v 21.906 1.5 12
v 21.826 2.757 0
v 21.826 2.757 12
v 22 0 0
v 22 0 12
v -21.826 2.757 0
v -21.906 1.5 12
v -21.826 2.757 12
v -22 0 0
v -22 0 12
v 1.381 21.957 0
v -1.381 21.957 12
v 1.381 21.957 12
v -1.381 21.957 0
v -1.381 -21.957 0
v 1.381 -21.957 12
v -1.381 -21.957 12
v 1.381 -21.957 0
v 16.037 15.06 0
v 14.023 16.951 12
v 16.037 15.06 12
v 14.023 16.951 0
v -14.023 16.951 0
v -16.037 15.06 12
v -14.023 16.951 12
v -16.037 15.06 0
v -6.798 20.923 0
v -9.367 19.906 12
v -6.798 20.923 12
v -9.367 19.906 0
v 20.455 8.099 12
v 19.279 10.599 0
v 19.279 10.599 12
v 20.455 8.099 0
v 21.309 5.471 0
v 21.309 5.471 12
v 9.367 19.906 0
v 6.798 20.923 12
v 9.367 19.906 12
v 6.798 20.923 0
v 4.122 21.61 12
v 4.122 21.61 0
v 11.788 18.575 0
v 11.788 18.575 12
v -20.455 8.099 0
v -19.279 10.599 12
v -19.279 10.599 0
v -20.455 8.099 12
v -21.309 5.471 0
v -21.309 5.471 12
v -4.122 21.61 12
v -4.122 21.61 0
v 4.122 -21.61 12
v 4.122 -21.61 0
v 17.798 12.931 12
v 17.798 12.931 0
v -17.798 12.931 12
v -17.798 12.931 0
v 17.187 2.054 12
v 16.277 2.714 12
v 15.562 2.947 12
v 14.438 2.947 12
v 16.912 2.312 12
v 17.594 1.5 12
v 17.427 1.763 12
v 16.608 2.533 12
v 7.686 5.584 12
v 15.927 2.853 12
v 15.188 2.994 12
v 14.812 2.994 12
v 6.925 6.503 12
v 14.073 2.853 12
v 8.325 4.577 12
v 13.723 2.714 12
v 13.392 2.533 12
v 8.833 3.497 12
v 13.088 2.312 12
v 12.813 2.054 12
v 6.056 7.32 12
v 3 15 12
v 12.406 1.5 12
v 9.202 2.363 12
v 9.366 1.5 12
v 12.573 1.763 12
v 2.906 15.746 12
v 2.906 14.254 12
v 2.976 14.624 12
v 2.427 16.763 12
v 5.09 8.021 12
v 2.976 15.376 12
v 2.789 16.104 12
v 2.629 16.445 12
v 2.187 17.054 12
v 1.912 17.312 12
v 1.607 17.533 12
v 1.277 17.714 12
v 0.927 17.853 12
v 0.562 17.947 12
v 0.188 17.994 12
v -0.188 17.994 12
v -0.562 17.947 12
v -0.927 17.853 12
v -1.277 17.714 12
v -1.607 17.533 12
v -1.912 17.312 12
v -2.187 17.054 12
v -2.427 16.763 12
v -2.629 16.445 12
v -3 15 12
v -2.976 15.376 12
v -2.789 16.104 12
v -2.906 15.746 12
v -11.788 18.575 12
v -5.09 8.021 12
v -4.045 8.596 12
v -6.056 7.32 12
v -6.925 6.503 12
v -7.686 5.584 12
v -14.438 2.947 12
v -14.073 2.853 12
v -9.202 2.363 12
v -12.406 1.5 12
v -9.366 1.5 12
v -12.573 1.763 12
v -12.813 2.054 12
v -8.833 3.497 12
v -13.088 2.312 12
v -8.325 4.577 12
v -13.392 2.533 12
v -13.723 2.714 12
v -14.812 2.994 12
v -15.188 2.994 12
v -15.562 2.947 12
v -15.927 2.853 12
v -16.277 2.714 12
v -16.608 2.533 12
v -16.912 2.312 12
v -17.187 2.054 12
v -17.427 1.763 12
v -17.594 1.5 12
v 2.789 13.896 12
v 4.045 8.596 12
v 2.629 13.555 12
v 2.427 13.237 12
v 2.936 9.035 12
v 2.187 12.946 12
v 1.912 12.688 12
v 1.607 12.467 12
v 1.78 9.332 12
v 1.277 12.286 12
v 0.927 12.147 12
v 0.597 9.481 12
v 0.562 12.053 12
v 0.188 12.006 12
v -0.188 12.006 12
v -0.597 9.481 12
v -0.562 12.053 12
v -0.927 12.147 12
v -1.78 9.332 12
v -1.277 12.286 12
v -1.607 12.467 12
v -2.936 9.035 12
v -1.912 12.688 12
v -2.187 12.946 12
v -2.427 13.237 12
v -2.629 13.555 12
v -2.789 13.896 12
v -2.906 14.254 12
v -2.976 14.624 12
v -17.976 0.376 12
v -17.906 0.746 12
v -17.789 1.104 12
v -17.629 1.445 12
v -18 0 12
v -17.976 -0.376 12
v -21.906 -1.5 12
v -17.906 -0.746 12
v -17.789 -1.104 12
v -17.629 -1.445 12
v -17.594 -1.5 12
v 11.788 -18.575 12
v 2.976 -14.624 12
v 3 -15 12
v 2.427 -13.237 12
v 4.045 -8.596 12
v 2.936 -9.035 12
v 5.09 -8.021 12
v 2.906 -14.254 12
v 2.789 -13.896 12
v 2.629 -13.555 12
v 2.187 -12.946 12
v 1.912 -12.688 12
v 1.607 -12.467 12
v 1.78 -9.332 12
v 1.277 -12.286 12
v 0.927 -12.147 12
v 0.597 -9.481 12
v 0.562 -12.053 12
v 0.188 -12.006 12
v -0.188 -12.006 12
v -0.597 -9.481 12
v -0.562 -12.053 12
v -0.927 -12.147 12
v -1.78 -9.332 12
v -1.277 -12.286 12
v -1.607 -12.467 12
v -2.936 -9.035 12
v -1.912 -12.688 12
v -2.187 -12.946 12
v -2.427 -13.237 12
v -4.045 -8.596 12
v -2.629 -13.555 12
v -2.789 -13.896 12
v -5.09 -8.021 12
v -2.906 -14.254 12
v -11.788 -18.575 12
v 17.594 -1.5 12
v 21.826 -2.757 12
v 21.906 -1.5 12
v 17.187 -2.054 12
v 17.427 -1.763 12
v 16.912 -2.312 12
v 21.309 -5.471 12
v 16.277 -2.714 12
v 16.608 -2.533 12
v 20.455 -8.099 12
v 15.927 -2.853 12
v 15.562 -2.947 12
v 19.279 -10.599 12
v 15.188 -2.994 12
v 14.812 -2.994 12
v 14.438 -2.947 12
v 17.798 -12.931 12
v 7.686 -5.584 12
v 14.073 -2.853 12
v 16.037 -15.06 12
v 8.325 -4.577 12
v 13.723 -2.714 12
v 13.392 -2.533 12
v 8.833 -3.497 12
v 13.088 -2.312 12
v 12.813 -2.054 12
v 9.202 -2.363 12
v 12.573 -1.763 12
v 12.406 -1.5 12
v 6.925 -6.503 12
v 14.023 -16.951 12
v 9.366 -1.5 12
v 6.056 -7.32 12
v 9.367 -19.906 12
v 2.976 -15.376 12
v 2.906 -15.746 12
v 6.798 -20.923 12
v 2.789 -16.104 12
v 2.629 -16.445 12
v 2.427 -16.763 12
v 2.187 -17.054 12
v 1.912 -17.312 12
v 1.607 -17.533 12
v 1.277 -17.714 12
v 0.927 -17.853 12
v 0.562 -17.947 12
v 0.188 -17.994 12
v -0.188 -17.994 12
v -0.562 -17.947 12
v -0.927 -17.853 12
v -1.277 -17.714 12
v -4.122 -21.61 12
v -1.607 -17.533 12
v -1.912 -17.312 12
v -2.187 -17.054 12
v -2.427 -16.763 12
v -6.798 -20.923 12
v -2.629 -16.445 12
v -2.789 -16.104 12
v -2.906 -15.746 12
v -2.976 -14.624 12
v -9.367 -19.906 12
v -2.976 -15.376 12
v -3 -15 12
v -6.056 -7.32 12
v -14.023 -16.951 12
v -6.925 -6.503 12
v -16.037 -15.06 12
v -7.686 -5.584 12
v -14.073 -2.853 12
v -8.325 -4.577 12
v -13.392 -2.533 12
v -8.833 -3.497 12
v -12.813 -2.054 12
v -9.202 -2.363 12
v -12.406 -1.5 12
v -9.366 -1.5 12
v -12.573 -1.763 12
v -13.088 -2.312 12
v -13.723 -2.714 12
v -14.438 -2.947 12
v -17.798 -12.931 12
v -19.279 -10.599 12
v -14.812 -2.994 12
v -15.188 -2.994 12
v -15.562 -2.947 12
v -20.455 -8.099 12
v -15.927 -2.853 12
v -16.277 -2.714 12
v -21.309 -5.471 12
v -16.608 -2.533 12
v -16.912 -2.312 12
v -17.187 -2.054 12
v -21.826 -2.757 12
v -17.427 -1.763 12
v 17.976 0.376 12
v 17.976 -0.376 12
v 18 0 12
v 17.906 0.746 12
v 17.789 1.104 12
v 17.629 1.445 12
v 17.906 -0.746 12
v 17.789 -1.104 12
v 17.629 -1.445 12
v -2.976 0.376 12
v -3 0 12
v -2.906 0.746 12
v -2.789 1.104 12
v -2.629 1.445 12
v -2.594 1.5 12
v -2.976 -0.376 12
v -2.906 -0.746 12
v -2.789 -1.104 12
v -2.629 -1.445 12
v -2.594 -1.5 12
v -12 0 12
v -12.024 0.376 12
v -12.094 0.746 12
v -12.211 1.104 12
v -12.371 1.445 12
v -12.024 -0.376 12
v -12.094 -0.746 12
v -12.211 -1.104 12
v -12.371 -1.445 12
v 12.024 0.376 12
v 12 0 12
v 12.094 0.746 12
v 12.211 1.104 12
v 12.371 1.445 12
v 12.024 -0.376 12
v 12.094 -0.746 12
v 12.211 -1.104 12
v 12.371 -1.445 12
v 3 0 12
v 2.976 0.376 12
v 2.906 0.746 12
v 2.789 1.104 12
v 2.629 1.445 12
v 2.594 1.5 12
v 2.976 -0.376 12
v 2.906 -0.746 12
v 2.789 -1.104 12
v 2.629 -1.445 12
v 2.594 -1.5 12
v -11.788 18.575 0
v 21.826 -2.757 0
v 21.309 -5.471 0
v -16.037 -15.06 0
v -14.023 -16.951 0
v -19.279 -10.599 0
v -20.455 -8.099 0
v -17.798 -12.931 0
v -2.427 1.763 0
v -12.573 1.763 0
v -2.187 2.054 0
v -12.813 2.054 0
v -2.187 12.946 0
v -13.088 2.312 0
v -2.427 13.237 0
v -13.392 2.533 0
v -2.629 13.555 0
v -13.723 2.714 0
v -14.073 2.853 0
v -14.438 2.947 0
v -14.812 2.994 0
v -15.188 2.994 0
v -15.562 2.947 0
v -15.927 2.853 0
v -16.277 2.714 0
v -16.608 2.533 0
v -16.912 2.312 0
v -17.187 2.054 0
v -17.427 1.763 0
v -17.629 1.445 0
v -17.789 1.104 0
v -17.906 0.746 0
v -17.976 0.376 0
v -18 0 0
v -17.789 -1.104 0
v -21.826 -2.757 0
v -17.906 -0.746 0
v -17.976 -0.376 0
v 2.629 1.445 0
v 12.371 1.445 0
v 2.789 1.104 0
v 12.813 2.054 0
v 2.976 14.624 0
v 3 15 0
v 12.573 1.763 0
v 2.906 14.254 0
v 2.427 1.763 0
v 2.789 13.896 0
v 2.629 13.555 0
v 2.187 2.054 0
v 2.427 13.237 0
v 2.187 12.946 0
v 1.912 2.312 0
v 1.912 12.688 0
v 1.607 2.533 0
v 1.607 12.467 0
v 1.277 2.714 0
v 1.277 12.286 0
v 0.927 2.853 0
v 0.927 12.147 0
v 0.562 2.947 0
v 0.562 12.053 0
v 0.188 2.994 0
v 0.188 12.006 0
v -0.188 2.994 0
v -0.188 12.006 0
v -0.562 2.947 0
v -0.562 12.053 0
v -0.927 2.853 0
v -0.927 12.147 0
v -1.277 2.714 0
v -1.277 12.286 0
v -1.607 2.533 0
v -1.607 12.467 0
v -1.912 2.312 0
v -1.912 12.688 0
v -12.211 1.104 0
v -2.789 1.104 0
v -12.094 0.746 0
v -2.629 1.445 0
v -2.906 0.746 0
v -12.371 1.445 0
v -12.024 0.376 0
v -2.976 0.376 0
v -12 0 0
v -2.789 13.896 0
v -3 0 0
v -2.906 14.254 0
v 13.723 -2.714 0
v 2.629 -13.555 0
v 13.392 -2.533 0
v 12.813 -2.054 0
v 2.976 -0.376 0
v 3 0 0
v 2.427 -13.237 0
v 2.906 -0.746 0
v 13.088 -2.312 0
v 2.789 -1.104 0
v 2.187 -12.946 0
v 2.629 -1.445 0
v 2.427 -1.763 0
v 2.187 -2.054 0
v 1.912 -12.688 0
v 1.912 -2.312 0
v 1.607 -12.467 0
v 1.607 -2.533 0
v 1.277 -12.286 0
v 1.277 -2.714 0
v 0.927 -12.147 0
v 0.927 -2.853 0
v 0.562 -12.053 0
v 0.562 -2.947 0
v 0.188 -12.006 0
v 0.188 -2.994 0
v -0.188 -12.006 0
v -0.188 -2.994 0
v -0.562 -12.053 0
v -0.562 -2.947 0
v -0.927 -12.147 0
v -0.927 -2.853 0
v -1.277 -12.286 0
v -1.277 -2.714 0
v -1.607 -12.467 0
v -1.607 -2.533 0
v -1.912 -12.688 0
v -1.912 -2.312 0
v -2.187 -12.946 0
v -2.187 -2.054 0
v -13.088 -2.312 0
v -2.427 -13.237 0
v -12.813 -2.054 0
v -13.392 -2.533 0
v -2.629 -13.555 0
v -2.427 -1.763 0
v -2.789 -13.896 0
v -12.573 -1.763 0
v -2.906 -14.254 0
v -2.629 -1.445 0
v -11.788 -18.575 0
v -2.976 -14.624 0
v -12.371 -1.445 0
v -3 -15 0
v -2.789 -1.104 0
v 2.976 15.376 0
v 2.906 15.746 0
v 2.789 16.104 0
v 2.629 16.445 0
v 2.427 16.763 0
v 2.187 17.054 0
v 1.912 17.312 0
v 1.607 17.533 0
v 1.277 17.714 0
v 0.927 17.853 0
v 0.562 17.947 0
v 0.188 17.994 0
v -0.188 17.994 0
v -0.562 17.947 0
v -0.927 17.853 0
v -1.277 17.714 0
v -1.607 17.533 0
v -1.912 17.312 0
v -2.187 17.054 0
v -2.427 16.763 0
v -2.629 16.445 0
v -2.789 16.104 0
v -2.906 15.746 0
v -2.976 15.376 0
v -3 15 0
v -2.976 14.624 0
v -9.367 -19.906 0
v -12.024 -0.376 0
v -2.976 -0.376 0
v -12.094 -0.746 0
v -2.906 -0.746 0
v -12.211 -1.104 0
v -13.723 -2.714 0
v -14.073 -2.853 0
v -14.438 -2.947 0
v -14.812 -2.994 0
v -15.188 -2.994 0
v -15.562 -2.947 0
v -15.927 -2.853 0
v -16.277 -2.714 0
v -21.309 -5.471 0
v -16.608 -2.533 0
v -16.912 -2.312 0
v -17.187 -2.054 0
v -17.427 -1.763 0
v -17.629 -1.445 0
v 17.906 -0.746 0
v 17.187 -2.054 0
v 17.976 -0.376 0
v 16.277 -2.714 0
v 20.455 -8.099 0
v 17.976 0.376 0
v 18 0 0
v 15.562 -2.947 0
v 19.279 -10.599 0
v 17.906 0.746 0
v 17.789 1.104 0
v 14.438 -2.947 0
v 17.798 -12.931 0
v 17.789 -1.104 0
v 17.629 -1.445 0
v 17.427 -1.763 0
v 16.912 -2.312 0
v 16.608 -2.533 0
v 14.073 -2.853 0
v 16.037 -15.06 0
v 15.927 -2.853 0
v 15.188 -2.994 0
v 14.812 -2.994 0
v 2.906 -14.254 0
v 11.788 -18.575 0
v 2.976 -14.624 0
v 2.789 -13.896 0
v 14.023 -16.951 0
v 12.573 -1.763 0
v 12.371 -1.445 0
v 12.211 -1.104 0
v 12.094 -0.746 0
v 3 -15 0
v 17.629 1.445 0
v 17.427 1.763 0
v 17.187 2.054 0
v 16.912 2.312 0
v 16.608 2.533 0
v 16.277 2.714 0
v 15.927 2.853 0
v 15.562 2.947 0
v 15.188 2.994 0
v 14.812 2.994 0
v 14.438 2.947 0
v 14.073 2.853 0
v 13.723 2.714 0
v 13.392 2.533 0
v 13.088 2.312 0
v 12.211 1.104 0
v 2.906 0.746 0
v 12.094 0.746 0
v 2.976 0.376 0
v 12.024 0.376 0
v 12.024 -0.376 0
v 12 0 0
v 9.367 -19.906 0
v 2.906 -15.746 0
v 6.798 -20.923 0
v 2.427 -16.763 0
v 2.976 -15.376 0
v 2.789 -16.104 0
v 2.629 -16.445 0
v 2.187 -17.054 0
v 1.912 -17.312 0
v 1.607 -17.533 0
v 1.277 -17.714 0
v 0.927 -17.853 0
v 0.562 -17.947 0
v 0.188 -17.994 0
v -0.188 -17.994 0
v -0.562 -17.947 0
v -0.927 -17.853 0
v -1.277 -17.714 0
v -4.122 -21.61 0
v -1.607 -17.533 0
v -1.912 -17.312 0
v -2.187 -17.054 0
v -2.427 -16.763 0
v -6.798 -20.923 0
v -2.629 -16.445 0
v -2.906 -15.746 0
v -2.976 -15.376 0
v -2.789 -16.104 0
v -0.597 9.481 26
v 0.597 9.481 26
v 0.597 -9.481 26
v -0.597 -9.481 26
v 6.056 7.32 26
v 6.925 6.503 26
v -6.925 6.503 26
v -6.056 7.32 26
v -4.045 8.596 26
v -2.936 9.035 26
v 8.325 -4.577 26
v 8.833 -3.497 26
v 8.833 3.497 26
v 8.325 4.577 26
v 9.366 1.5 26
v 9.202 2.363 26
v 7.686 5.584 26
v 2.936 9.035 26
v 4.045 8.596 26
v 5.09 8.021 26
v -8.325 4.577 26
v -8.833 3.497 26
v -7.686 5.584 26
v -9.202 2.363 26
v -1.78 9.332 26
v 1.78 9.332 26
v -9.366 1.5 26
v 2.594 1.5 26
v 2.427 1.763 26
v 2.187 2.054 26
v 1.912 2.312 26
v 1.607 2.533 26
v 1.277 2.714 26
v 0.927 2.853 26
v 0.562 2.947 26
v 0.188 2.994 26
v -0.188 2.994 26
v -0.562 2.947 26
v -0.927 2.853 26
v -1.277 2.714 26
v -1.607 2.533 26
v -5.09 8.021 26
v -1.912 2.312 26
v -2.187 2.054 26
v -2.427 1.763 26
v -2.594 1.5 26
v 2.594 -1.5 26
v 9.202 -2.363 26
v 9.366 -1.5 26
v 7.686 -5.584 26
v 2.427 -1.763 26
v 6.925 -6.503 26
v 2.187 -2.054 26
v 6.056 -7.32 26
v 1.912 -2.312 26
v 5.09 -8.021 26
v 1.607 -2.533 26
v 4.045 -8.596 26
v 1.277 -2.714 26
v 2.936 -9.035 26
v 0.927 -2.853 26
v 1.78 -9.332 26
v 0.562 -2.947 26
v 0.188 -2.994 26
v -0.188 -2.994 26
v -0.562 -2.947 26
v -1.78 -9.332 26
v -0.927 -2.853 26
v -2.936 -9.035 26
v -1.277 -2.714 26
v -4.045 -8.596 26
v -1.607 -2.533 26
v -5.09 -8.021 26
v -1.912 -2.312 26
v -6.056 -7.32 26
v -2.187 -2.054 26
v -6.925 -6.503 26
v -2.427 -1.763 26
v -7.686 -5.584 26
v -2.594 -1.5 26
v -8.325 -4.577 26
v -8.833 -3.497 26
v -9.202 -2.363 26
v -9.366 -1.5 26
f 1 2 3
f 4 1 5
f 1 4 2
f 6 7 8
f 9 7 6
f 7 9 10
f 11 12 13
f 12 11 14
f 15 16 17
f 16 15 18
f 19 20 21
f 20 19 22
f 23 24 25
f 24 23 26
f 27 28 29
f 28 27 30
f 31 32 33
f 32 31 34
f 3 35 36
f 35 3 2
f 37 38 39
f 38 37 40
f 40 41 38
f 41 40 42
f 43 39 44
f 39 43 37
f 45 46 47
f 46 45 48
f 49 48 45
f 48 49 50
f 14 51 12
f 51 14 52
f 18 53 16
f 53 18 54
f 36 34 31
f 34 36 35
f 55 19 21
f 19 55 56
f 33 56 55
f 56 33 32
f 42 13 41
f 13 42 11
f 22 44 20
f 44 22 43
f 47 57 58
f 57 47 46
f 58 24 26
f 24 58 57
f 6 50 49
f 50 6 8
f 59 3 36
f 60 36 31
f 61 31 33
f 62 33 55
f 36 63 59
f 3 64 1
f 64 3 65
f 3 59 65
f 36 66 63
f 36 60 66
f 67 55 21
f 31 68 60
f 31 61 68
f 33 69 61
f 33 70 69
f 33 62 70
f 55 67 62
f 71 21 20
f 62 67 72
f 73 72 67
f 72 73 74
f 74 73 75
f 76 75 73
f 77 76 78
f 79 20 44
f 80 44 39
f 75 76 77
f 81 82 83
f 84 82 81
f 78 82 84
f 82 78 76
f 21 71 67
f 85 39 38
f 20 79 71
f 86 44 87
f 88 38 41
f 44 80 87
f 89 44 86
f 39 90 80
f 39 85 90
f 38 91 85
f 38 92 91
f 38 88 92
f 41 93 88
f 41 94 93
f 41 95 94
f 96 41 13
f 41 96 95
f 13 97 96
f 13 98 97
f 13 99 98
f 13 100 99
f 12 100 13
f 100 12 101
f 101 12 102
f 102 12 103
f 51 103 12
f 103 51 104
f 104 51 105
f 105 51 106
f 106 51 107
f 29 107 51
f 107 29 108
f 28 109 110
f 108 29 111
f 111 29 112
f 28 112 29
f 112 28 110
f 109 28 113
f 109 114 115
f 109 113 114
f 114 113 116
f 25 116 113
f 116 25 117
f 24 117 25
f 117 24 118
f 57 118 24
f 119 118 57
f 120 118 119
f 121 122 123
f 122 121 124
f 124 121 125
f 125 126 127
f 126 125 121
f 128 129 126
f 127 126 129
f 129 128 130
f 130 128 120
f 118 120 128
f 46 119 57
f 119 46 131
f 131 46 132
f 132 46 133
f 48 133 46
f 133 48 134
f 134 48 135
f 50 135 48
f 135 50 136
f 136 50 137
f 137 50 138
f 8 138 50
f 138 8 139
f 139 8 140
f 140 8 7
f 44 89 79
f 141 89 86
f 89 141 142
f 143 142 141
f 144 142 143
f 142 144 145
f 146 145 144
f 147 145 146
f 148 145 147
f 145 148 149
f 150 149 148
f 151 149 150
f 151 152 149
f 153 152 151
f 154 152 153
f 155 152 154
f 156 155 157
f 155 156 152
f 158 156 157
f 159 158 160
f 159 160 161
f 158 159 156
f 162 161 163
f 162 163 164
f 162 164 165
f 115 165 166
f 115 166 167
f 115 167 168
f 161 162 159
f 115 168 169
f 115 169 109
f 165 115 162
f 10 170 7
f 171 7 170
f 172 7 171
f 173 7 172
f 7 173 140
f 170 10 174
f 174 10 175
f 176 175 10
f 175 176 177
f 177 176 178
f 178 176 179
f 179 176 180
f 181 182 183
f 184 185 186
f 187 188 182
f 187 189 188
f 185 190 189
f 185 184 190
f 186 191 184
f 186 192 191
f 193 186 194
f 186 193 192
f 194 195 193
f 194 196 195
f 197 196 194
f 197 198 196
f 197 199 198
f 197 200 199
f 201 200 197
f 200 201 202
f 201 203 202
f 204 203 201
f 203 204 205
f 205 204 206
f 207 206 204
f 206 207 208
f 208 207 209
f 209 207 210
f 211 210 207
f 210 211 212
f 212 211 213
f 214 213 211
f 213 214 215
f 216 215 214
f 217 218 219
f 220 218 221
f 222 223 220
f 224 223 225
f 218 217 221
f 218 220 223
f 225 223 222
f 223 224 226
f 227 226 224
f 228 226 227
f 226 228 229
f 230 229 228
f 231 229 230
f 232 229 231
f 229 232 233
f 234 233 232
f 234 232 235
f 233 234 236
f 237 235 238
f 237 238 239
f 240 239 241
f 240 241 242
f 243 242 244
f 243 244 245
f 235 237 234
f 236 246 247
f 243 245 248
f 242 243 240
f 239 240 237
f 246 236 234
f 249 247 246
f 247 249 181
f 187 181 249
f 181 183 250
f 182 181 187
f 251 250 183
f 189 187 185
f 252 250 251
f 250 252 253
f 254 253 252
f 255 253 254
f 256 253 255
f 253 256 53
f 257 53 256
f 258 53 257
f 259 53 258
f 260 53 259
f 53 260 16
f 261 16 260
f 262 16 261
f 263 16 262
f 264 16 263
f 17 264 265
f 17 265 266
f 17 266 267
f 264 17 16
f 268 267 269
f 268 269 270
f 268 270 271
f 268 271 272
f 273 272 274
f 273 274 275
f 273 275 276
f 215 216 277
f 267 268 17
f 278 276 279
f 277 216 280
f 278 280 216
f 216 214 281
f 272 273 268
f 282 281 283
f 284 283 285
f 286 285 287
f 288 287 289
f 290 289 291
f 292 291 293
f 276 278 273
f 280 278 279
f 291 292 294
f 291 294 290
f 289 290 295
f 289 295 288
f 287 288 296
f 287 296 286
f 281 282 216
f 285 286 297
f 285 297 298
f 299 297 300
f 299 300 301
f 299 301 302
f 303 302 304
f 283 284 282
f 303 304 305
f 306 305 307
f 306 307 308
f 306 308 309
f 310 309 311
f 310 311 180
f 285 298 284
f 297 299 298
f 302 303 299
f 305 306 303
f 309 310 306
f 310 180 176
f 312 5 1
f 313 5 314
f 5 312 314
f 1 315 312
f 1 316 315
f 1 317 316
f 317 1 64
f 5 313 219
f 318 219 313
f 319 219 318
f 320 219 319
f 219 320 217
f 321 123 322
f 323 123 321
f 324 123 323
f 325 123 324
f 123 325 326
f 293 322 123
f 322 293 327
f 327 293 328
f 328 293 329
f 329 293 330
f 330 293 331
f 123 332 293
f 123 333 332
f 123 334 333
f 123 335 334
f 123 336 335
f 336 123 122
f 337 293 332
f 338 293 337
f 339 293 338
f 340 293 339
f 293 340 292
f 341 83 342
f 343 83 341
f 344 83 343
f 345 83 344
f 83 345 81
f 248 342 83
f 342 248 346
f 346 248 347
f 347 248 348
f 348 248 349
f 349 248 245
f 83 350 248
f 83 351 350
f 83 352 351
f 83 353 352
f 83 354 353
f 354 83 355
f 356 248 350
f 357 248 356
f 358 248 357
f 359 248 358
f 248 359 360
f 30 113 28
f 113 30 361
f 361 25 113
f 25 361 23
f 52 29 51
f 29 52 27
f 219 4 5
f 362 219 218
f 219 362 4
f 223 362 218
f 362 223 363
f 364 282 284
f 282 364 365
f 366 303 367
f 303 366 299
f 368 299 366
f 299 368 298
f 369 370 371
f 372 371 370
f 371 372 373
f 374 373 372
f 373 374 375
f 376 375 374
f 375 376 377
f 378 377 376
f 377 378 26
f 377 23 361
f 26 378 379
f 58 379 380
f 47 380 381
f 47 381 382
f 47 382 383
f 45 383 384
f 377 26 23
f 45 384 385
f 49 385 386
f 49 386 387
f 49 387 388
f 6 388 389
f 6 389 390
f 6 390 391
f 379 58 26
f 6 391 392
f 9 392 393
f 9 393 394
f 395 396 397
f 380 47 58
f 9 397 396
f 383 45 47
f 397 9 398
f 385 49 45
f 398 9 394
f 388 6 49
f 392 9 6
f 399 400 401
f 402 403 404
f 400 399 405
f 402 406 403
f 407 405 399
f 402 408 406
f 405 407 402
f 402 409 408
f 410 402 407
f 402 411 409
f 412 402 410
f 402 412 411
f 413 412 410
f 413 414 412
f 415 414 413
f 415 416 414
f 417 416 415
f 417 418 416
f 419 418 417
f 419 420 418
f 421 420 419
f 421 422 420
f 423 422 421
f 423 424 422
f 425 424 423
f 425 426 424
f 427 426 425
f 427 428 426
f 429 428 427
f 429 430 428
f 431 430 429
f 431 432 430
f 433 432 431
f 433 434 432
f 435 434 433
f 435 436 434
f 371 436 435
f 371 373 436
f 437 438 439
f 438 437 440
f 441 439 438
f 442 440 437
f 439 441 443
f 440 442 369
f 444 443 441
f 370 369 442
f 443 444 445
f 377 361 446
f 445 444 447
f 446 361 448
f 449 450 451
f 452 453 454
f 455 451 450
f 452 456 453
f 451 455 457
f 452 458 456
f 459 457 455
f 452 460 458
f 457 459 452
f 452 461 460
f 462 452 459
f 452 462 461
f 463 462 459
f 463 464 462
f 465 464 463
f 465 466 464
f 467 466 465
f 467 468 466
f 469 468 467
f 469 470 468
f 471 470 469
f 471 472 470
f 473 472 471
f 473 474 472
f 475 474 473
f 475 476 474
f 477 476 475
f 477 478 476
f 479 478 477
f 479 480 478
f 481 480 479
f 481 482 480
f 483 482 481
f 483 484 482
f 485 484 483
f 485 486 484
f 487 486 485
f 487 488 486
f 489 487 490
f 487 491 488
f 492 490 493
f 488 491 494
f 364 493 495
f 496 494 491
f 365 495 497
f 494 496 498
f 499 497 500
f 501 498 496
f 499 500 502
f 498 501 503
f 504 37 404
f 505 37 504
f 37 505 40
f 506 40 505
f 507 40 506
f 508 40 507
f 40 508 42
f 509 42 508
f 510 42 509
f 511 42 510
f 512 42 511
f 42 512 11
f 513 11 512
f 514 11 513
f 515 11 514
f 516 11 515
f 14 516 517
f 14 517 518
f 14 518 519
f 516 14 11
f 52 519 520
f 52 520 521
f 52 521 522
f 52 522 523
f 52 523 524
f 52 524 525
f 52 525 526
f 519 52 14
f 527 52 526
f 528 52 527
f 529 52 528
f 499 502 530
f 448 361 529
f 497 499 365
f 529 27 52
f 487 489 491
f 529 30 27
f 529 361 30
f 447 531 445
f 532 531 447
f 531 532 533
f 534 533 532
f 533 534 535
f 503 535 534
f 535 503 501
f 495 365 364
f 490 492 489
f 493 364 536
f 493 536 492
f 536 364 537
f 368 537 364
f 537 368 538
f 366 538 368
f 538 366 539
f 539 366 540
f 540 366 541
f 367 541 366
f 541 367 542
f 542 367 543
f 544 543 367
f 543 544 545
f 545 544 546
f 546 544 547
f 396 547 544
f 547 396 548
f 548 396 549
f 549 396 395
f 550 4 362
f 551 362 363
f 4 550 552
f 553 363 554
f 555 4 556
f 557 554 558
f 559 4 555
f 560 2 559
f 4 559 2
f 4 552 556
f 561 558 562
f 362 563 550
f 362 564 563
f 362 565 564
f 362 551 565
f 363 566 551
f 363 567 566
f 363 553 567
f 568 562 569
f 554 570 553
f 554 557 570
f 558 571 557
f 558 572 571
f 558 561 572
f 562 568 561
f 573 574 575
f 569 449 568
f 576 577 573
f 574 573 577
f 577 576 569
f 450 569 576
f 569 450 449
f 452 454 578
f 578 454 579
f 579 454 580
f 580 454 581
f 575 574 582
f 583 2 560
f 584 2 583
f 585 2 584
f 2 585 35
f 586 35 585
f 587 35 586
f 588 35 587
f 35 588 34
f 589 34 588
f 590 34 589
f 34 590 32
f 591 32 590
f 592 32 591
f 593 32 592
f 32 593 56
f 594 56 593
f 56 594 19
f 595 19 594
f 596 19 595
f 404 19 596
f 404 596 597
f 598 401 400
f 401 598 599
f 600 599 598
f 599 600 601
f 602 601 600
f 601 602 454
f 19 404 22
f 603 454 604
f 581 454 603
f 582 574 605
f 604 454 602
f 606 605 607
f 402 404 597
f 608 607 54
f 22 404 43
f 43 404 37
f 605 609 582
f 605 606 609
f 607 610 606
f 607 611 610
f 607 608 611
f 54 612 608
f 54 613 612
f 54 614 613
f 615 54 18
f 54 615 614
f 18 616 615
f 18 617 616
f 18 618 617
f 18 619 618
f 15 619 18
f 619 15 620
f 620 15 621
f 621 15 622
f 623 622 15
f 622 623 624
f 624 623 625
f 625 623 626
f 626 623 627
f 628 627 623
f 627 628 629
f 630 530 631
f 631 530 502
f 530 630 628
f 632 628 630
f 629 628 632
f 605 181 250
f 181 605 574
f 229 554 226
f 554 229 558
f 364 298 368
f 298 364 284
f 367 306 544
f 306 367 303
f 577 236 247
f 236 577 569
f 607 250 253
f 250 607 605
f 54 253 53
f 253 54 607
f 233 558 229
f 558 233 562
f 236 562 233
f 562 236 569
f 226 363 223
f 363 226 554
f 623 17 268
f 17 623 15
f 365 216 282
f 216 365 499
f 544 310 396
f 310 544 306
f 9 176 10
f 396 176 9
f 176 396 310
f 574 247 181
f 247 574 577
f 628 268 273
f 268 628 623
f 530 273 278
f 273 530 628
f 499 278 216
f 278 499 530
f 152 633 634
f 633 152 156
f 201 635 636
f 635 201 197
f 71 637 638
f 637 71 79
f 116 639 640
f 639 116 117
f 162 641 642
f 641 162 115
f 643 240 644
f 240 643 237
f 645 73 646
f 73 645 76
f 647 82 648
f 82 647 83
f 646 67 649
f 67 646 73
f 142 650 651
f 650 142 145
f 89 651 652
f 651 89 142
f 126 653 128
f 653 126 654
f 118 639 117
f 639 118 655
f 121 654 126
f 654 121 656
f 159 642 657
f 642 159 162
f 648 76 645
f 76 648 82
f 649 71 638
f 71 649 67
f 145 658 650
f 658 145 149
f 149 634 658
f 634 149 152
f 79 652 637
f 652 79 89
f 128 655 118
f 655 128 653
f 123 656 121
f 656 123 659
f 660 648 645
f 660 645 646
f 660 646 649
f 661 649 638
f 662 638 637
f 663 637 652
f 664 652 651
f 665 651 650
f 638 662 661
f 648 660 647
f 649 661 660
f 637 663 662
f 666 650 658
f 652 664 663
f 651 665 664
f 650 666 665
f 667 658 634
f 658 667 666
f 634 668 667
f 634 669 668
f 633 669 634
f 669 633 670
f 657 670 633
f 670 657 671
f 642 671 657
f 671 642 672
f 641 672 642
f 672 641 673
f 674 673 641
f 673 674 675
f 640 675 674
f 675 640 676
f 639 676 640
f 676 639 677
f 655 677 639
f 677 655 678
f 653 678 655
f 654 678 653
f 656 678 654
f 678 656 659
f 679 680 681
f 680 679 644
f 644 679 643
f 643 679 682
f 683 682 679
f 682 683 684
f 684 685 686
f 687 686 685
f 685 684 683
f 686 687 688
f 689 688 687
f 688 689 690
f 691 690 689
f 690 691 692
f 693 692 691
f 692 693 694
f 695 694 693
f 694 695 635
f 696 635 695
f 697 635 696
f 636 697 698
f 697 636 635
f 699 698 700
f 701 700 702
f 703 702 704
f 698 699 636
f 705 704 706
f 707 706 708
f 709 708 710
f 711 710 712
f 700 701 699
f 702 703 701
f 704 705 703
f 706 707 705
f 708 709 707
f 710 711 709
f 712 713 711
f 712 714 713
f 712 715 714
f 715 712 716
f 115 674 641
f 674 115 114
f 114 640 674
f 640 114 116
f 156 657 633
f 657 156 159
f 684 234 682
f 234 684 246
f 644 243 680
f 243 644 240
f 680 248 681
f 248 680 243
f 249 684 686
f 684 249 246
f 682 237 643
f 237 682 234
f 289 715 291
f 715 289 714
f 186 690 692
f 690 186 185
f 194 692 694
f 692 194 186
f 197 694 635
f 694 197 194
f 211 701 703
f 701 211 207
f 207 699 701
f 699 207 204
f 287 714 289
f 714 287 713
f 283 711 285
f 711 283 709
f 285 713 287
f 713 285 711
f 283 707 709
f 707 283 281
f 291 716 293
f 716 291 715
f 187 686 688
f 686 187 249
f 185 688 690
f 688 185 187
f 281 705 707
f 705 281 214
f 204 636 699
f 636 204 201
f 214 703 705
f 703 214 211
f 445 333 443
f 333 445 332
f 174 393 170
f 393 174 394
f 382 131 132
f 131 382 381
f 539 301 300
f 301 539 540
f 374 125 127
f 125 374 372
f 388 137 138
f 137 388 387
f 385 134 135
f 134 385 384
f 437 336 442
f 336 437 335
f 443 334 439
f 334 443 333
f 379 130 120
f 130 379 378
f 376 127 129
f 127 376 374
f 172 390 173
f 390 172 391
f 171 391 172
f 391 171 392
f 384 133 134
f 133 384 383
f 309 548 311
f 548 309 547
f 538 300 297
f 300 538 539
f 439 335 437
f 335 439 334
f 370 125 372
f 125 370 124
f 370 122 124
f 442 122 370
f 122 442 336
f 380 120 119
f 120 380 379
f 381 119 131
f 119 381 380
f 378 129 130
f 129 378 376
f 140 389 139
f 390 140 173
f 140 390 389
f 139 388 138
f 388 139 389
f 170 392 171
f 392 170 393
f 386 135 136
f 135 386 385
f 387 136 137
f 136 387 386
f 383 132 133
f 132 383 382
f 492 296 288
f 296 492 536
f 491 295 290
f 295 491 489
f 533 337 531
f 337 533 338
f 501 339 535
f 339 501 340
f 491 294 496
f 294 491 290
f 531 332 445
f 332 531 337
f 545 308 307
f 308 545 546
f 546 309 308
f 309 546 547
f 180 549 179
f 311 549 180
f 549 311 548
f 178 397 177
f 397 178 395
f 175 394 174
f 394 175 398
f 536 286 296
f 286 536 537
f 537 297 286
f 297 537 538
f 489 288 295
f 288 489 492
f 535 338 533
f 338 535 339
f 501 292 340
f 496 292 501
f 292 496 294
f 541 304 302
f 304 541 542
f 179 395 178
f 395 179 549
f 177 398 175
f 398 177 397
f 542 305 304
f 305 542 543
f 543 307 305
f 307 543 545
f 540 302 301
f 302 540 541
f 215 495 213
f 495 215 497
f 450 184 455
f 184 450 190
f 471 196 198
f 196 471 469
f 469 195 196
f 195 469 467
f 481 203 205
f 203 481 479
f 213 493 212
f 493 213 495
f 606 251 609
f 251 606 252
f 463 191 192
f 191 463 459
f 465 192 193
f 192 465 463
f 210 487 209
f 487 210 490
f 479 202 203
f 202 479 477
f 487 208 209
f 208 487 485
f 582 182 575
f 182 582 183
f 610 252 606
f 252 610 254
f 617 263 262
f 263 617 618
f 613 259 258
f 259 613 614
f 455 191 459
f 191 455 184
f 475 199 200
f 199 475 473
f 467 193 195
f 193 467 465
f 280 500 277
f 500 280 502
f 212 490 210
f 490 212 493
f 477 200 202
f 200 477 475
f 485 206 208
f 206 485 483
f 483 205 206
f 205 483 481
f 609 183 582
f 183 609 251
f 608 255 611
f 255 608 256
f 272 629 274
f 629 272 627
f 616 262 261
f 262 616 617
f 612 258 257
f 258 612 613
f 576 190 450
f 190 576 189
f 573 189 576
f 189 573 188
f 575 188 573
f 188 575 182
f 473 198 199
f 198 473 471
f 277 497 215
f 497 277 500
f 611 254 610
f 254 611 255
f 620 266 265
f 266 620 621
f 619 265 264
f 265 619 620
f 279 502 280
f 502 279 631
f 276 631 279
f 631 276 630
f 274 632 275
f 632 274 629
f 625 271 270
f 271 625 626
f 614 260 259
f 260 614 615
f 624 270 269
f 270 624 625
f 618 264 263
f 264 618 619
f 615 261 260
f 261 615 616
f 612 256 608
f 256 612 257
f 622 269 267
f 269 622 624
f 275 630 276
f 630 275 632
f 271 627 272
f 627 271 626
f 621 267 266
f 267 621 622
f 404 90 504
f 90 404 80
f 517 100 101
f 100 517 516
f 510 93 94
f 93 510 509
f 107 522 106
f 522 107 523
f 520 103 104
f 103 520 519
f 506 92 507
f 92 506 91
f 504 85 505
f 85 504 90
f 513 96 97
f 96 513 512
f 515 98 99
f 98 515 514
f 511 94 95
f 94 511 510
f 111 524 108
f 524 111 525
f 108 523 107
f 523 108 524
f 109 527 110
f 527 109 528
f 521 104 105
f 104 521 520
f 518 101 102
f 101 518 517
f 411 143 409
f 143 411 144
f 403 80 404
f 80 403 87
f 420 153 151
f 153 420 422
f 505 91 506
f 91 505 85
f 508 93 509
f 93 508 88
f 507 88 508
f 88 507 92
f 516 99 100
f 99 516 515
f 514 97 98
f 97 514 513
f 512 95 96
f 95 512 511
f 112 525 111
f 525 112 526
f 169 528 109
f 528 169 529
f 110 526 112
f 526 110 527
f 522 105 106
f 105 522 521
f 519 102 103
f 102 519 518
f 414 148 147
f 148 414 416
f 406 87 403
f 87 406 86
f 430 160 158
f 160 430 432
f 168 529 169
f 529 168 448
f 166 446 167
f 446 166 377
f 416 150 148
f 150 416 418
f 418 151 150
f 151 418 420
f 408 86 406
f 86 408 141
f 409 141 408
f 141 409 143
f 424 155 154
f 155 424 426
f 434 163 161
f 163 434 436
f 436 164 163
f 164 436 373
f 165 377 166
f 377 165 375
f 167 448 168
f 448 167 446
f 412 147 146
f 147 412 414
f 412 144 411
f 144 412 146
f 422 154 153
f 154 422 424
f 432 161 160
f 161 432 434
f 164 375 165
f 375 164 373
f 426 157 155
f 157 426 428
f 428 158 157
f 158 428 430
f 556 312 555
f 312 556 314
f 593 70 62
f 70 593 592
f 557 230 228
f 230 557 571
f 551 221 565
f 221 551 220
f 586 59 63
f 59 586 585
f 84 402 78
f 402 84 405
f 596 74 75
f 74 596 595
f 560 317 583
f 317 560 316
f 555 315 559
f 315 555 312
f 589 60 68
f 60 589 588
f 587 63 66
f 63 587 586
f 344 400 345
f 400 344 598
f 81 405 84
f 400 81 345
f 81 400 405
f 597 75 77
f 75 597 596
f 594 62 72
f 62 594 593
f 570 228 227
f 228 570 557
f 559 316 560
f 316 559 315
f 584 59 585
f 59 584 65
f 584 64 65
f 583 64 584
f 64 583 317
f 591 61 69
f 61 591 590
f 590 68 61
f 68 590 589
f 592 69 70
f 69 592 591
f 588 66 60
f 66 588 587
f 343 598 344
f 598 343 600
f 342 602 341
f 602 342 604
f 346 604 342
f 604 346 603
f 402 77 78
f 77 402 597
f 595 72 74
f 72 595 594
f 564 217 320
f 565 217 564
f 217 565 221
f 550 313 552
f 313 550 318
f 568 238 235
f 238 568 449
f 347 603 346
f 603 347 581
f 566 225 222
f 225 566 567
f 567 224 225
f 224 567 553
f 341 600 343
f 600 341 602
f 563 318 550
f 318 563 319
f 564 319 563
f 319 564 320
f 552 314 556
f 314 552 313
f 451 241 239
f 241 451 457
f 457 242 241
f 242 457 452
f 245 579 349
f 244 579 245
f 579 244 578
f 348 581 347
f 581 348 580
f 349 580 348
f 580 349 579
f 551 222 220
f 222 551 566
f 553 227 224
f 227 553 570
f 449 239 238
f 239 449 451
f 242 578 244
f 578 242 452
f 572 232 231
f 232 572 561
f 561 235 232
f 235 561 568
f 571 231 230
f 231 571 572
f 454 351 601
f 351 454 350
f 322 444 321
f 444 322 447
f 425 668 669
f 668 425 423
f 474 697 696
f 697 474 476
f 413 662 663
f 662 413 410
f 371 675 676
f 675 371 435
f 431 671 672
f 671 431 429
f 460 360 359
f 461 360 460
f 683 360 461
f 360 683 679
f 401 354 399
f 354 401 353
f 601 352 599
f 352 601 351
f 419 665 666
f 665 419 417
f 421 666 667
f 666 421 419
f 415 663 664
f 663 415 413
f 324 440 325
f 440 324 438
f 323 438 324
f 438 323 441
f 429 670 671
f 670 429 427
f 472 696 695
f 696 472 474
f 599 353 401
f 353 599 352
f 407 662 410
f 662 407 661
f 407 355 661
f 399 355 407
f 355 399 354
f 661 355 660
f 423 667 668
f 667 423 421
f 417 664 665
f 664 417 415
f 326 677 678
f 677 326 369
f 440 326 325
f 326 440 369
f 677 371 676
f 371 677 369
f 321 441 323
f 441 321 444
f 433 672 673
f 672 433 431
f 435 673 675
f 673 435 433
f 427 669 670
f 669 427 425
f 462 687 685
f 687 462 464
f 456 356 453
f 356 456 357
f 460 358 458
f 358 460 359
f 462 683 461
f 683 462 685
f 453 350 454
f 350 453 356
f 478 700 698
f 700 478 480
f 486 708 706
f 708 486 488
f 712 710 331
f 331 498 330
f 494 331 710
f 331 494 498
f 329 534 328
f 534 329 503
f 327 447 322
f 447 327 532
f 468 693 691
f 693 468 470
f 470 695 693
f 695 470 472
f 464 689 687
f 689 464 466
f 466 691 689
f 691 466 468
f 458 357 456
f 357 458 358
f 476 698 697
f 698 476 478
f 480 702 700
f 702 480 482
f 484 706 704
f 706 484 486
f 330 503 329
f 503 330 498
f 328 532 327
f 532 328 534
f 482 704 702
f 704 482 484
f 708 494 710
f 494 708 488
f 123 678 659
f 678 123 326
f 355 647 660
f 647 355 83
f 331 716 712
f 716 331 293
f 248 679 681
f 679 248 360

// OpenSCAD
$fn = 50;


difference() {
	union() {
		translate(v = [0, 0, 0.0000000000]) {
			rotate(a = [0, 0, 0]) {
				cylinder(h = 12, r = 22.0000000000);
			}
		}
		translate(v = [0, 0, 6.0000000000]) {
			rotate(a = [0, 0, 0]) {
				cylinder(h = 20, r = 9.5000000000);
			}
		}
	}
	union() {
		translate(v = [-15.0000000000, 0.0000000000, -125.0000000000]) {
			rotate(a = [0, 0, 0]) {
				cylinder(h = 250, r = 3.0000000000);
			}
		}
		translate(v = [0.0000000000, -15.0000000000, -125.0000000000]) {
			rotate(a = [0, 0, 0]) {
				cylinder(h = 250, r = 3.0000000000);
			}
		}
		translate(v = [0.0000000000, 15.0000000000, -125.0000000000]) {
			rotate(a = [0, 0, 0]) {
				cylinder(h = 250, r = 3.0000000000);
			}
		}
		translate(v = [15.0000000000, 0.0000000000, -125.0000000000]) {
			rotate(a = [0, 0, 0]) {
				cylinder(h = 250, r = 3.0000000000);
			}
		}
		translate(v = [0.0000000000, 0.0000000000, -125.0000000000]) {
			rotate(a = [0, 0, 0]) {
				cylinder(h = 250, r = 3.0000000000);
			}
		}
		translate(v = [-27.0000000000, -1.5000000000, 12]) {
			rotate(a = [0, 0, 0]) {
				cube(size = [54, 3, 20]);
			}
		}
	}
}
